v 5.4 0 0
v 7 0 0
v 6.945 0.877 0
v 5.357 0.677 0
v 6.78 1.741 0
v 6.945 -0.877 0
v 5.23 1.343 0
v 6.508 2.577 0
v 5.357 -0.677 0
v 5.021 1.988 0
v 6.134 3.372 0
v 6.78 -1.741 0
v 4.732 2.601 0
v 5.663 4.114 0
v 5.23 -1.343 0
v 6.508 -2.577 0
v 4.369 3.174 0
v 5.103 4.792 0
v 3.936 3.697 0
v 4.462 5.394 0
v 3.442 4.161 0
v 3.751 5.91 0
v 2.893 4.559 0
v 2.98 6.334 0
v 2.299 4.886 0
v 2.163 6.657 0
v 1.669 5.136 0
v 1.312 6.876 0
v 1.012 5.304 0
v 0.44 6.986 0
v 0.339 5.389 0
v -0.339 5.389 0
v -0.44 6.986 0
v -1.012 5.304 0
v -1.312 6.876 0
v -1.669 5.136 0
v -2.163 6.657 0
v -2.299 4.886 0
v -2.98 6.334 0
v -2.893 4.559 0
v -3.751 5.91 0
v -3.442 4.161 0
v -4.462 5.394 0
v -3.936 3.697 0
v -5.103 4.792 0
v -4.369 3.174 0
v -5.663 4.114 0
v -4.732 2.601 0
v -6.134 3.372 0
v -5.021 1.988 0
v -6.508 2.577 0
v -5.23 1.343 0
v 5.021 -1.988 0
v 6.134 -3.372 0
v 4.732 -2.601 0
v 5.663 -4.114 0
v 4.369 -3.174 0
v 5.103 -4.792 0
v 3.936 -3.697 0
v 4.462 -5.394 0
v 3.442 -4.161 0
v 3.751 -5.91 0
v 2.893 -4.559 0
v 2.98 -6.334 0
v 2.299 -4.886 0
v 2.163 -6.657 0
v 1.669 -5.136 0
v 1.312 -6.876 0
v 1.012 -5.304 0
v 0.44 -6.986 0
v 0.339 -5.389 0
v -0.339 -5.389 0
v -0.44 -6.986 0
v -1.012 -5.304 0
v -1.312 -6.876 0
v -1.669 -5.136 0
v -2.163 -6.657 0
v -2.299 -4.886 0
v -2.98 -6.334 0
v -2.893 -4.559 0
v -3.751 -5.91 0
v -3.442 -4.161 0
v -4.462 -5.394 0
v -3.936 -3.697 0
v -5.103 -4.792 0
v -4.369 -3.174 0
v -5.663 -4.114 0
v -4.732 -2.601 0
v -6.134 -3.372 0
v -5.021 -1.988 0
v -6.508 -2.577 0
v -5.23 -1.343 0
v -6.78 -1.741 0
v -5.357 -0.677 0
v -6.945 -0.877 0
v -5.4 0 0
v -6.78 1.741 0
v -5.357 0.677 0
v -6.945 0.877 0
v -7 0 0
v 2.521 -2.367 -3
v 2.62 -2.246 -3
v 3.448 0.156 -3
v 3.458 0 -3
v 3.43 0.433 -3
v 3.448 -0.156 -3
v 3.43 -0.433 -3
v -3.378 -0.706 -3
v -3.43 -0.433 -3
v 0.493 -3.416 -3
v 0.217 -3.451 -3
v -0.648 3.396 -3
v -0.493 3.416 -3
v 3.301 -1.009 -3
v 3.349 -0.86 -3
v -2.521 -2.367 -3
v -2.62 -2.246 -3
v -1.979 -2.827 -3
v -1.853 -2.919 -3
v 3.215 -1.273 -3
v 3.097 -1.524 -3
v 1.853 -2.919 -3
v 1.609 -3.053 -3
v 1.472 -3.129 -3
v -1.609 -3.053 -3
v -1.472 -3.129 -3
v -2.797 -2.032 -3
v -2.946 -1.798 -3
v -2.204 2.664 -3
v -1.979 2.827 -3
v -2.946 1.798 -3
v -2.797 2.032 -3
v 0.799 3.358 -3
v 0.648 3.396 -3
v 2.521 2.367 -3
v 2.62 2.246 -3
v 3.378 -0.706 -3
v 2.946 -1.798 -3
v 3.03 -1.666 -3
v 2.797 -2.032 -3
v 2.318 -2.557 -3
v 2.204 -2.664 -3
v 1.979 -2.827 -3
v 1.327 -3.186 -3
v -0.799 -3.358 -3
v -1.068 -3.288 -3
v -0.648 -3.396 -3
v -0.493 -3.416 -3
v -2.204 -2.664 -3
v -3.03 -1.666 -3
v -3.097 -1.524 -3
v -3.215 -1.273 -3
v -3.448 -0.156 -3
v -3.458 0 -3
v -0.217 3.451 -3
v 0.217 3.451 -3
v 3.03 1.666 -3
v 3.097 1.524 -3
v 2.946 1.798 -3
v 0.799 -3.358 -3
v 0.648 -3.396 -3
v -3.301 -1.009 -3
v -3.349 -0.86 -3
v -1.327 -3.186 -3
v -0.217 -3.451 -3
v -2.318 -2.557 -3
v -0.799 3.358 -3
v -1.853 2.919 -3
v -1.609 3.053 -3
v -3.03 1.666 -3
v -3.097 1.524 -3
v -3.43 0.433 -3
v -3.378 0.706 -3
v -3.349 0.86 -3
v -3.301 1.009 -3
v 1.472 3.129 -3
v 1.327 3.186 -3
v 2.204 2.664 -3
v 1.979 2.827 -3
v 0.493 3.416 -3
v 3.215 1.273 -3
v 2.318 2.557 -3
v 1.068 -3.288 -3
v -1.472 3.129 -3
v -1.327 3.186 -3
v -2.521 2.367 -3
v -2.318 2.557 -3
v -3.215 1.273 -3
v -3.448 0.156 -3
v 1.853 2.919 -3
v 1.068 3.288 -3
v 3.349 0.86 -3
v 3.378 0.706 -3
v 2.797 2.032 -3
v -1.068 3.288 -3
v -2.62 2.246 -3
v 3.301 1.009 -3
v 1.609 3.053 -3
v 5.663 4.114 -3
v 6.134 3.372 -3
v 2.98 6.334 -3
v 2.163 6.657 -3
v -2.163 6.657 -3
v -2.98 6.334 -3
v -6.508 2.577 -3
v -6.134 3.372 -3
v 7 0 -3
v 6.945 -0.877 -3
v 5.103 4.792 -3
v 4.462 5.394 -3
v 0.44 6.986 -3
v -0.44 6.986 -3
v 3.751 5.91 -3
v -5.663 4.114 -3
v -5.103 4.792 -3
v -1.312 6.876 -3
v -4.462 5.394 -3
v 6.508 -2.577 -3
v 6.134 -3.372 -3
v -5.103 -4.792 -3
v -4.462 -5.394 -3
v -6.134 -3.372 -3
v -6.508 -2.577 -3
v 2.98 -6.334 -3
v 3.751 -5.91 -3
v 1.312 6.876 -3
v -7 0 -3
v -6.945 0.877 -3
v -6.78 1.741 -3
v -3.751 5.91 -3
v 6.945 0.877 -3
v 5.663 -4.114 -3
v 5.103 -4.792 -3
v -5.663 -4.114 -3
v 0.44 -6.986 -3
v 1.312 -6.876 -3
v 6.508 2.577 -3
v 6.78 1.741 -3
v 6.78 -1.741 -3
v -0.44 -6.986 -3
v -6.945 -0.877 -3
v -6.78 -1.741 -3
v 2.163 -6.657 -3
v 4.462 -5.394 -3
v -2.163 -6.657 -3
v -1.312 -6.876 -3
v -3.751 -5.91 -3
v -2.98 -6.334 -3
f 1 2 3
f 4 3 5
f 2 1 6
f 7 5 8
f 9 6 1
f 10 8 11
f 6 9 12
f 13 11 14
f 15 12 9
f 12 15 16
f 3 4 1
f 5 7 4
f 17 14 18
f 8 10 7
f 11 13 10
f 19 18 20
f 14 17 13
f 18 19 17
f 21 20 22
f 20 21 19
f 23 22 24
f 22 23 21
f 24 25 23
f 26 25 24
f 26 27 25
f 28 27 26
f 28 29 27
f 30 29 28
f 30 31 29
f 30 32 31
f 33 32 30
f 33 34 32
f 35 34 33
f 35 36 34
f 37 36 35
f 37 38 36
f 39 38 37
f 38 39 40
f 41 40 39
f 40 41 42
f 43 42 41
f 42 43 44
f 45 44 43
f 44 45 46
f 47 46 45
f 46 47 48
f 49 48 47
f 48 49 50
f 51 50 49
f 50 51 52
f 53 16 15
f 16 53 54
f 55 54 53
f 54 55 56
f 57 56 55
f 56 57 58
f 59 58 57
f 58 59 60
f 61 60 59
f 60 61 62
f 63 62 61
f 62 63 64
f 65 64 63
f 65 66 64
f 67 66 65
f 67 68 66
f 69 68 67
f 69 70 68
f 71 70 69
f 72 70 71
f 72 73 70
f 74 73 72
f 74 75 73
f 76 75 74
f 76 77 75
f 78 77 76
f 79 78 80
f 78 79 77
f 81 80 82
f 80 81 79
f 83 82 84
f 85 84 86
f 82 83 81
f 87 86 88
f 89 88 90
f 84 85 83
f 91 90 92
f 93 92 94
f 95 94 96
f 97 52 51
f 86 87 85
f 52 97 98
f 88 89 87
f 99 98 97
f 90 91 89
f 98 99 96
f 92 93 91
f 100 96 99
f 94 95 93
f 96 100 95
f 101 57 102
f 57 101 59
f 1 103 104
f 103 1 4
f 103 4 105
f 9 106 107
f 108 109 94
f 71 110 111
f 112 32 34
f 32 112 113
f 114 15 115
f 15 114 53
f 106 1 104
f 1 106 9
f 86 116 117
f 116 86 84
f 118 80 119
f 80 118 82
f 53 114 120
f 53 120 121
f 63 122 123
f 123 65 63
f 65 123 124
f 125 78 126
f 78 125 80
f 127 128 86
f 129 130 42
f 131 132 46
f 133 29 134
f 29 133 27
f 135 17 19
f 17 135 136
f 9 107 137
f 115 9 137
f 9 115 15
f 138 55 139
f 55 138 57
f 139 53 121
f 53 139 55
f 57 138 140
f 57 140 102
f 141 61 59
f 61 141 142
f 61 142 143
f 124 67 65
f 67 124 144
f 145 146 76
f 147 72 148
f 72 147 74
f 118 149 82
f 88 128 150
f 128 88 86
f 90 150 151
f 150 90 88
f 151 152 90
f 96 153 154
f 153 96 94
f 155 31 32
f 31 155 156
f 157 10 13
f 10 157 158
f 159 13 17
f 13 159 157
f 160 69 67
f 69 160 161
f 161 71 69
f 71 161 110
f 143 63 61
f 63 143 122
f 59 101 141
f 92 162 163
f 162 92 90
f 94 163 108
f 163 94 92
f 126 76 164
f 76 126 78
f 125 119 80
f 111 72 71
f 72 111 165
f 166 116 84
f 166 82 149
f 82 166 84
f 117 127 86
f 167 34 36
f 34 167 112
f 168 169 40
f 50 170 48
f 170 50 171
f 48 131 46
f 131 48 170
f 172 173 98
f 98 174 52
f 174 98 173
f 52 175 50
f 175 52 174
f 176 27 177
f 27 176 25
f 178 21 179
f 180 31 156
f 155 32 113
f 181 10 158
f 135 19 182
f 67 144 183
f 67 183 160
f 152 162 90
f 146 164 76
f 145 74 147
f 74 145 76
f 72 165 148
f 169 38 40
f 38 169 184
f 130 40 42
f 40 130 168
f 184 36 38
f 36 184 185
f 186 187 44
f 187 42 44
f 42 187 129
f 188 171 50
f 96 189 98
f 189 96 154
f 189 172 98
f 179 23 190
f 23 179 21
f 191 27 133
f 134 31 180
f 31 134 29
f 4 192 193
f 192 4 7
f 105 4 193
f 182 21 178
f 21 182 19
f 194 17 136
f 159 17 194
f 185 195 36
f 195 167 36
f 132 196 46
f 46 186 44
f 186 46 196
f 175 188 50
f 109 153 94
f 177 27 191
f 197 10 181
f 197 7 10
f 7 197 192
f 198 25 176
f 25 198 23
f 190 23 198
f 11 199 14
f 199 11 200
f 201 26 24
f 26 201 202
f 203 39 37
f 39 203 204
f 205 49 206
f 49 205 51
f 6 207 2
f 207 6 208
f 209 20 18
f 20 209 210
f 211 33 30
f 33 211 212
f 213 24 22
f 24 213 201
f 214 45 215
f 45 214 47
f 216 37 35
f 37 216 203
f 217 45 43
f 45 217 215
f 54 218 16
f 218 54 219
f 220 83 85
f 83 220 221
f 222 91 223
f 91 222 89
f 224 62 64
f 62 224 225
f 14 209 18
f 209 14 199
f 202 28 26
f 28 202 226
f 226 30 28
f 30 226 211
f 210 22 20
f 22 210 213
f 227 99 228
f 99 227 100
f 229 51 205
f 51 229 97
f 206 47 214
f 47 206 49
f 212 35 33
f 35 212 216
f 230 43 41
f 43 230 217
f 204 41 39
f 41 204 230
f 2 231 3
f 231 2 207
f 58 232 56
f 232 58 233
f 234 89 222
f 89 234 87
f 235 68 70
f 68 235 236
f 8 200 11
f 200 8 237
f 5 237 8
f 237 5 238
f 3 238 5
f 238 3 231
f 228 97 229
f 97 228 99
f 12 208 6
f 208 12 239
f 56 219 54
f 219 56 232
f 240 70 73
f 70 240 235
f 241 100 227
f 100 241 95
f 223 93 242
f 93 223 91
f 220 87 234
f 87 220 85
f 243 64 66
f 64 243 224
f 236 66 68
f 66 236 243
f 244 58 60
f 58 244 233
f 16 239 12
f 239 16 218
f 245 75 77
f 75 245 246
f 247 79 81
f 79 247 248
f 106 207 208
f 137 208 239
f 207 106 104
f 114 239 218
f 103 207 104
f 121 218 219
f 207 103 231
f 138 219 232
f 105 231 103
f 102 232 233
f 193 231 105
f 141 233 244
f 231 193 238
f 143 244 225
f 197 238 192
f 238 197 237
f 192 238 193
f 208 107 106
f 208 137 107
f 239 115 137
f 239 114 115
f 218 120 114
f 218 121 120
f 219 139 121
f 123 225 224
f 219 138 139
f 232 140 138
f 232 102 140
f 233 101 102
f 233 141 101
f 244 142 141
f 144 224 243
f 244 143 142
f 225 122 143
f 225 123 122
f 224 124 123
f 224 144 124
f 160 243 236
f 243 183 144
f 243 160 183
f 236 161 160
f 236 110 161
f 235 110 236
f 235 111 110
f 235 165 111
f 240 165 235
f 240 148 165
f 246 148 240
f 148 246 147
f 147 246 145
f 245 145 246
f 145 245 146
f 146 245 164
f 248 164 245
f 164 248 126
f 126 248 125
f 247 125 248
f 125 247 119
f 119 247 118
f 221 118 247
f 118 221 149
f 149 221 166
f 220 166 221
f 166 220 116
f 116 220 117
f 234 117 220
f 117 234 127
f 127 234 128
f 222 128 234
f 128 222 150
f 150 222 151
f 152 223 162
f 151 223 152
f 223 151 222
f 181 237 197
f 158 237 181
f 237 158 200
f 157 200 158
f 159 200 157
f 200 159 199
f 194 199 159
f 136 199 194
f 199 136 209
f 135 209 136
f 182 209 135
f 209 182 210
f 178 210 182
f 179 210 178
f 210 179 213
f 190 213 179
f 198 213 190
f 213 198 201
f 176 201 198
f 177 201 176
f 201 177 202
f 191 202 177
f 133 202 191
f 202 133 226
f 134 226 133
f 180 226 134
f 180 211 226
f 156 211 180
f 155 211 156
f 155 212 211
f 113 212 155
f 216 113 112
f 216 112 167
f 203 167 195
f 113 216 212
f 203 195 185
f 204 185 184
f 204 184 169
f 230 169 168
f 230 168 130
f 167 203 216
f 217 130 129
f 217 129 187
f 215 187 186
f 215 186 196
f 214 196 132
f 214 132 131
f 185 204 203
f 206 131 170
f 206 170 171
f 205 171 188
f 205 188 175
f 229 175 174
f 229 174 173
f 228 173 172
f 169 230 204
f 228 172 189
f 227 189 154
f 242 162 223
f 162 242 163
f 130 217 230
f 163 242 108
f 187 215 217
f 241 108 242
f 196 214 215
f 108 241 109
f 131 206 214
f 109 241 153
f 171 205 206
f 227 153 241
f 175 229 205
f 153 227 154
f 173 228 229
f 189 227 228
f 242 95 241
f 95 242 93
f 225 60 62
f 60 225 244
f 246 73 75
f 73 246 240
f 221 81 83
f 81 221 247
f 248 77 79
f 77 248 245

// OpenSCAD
$fn = 50;


difference() {
	union() {
		translate(v = [0, 0, -3.0000000000]) {
			cylinder(h = 3, r = 7.0000000000);
		}
	}
	union() {
		translate(v = [0, 0, 0]) {
			rotate(a = [0, 0, 0]) {
				difference() {
					union() {
						translate(v = [0, 0, -3.0000000000]) {
							cylinder(h = 3, r = 2.6000000000);
						}
						translate(v = [0, 0, -3.9000000000]) {
							cylinder(h = 3.9000000000, r1 = 2.8750000000, r2 = 5.4000000000);
						}
						translate(v = [0, 0, -3.0000000000]) {
							cylinder(h = 3, r = 2.8750000000);
						}
						translate(v = [0, 0, -3.0000000000]) {
							cylinder(h = 3, r = 2.6000000000);
						}
					}
					union();
				}
			}
		}
	}
}
